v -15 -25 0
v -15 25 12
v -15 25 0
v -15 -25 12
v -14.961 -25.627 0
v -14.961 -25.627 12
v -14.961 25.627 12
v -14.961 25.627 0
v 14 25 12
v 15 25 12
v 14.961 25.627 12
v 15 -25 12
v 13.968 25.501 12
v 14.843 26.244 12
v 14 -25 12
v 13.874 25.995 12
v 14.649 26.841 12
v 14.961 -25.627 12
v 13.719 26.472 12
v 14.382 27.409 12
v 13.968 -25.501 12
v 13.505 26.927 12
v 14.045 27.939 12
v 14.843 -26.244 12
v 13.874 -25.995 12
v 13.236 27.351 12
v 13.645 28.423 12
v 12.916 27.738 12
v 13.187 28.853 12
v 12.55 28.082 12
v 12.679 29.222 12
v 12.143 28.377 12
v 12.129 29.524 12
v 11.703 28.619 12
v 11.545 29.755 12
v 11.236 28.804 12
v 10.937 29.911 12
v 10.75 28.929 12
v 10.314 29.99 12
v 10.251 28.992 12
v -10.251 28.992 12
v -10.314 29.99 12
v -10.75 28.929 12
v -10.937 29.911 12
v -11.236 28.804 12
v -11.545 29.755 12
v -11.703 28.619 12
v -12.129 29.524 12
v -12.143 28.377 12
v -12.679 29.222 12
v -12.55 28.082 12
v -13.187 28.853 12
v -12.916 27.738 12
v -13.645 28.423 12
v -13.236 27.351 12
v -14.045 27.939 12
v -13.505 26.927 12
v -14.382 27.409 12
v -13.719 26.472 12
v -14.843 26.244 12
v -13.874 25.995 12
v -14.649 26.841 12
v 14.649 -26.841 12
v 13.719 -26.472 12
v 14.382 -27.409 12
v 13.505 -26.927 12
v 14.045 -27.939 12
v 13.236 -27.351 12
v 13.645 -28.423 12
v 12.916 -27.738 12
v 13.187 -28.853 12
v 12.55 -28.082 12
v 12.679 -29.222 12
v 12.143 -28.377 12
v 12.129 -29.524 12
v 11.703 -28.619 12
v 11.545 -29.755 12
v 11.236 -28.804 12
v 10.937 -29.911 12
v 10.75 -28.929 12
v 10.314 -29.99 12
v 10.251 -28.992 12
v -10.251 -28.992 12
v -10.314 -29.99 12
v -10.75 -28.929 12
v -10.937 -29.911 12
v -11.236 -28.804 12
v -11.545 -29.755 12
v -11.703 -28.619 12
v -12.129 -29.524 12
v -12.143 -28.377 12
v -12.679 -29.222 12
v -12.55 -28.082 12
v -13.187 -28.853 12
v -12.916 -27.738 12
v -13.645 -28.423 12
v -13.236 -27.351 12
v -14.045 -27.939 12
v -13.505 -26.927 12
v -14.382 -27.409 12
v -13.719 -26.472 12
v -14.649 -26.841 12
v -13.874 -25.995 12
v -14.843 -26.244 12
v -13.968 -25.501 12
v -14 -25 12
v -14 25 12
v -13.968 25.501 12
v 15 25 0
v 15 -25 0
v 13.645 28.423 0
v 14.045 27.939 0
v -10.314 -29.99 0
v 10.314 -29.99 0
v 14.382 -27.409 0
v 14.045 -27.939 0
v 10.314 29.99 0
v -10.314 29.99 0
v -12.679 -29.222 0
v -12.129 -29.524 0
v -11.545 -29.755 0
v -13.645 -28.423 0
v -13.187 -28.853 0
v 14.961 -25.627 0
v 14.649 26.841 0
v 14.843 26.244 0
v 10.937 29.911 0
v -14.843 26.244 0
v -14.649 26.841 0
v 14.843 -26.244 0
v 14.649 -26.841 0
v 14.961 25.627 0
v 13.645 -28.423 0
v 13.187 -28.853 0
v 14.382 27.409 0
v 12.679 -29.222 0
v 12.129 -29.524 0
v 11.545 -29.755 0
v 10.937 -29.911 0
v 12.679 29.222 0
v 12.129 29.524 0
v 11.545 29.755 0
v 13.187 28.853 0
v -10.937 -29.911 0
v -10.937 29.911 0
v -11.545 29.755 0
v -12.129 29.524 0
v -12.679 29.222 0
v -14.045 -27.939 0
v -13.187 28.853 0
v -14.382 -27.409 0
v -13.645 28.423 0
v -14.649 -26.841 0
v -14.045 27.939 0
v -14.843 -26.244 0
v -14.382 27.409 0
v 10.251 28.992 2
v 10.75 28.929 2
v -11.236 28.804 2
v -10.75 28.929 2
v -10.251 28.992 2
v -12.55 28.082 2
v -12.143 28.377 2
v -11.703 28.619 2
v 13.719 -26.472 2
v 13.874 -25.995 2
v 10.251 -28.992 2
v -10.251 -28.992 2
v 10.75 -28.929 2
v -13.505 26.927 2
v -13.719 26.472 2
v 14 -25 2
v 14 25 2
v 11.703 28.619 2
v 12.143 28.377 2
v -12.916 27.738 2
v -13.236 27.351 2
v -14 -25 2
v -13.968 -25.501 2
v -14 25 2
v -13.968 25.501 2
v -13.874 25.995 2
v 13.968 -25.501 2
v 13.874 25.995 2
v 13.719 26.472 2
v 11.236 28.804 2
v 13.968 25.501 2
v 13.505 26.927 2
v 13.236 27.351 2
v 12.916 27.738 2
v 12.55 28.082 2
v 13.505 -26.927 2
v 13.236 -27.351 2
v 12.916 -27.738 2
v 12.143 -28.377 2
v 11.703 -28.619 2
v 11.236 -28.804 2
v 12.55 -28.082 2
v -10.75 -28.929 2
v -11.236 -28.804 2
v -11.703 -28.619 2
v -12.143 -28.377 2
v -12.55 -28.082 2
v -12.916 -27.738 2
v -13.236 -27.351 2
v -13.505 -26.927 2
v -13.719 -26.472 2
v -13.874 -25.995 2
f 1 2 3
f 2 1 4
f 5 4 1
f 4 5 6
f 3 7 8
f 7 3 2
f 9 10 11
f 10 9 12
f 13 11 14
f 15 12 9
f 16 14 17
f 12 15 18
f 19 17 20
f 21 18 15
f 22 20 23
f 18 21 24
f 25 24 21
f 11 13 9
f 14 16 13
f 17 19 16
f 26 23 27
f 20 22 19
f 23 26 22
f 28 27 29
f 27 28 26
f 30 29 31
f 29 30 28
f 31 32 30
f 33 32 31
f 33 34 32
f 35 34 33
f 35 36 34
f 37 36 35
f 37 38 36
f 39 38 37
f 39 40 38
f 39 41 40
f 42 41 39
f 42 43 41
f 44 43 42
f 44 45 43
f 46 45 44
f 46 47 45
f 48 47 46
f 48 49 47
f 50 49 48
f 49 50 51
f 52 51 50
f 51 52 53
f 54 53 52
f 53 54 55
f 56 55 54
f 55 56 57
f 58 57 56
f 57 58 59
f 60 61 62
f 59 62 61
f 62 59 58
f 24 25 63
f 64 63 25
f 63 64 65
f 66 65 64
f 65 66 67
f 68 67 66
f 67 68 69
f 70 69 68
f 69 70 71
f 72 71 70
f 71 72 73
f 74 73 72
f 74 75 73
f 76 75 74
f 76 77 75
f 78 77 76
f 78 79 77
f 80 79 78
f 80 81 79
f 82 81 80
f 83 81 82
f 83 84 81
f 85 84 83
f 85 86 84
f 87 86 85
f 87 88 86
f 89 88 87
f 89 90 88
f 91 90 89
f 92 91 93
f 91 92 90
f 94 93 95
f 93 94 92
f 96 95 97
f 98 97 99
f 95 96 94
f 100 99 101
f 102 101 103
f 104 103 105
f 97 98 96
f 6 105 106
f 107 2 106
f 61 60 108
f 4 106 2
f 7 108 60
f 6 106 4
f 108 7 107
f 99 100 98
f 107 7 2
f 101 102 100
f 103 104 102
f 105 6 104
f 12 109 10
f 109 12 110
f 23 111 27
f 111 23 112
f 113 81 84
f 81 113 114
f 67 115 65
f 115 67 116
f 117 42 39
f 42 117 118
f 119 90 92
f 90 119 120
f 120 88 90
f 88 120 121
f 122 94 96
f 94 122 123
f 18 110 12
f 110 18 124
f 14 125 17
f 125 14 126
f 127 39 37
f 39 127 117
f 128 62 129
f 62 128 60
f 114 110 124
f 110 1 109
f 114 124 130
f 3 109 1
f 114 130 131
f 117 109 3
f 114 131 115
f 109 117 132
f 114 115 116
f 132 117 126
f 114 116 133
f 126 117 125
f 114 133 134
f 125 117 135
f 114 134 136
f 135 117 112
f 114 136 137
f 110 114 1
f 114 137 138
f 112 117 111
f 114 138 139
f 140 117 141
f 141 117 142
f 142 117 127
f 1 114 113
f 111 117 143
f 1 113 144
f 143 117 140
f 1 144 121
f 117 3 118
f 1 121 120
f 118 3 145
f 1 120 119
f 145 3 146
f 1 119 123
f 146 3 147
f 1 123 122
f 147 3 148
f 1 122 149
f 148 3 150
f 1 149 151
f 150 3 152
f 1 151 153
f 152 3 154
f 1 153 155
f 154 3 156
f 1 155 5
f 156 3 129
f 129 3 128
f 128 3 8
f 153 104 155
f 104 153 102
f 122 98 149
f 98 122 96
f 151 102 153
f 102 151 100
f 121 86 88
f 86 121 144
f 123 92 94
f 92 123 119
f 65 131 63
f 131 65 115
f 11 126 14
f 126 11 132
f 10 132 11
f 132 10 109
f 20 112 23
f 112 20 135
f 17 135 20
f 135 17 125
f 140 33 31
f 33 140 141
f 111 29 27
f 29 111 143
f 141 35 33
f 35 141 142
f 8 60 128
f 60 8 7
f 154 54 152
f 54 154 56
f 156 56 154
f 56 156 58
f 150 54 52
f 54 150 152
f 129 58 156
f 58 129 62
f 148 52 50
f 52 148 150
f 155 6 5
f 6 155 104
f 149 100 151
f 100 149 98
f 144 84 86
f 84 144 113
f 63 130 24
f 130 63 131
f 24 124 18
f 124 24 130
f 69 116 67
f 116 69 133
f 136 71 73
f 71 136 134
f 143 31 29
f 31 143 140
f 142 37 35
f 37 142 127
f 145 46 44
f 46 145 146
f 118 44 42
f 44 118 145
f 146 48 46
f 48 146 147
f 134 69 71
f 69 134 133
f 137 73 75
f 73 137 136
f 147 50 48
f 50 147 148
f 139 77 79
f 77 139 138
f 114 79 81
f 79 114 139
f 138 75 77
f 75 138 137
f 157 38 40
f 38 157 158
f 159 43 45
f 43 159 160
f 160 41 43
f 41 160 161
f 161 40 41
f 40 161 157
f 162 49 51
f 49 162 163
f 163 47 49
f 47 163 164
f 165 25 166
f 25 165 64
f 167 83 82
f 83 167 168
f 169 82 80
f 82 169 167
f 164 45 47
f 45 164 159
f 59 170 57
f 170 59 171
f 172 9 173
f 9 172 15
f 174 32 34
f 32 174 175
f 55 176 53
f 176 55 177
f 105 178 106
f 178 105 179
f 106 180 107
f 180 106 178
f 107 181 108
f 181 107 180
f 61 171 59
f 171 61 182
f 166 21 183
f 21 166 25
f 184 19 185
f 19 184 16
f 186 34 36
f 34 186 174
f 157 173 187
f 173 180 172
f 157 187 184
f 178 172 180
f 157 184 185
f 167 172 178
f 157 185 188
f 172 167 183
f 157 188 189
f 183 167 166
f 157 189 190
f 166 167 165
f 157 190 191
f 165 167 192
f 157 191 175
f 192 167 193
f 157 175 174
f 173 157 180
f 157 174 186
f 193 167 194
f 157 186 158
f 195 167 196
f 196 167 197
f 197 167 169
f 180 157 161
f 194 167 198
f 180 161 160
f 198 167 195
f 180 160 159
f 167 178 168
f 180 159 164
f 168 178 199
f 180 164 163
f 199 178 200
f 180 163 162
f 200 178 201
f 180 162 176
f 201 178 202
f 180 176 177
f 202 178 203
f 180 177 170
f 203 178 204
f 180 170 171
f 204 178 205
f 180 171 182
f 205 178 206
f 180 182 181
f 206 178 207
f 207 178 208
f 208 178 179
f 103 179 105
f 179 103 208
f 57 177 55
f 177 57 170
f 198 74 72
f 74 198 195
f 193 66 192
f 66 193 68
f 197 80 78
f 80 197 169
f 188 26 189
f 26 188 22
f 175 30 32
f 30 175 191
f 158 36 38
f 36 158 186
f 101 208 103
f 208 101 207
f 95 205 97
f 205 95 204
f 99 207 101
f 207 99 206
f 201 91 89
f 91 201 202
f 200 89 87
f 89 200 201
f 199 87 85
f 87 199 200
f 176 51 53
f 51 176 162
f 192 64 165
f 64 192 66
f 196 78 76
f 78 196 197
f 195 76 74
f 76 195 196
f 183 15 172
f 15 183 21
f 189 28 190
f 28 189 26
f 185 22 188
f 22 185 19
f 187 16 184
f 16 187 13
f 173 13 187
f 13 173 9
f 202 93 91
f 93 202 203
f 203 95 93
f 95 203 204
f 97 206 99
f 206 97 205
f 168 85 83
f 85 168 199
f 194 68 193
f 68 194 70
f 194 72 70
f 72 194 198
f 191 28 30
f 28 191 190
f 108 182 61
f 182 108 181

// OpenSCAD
$fn = 50;


difference() {
	union() {
		hull() {
			translate(v = [-10.0000000000, 25.0000000000, 0]) {
				cylinder(h = 12, r = 5);
			}
			translate(v = [10.0000000000, 25.0000000000, 0]) {
				cylinder(h = 12, r = 5);
			}
			translate(v = [-10.0000000000, -25.0000000000, 0]) {
				cylinder(h = 12, r = 5);
			}
			translate(v = [10.0000000000, -25.0000000000, 0]) {
				cylinder(h = 12, r = 5);
			}
		}
	}
	union() {
		translate(v = [0, 0, 2]) {
			hull() {
				translate(v = [-10.0000000000, 25.0000000000, 0]) {
					cylinder(h = 10, r = 4);
				}
				translate(v = [10.0000000000, 25.0000000000, 0]) {
					cylinder(h = 10, r = 4);
				}
				translate(v = [-10.0000000000, -25.0000000000, 0]) {
					cylinder(h = 10, r = 4);
				}
				translate(v = [10.0000000000, -25.0000000000, 0]) {
					cylinder(h = 10, r = 4);
				}
			}
		}
	}
}
